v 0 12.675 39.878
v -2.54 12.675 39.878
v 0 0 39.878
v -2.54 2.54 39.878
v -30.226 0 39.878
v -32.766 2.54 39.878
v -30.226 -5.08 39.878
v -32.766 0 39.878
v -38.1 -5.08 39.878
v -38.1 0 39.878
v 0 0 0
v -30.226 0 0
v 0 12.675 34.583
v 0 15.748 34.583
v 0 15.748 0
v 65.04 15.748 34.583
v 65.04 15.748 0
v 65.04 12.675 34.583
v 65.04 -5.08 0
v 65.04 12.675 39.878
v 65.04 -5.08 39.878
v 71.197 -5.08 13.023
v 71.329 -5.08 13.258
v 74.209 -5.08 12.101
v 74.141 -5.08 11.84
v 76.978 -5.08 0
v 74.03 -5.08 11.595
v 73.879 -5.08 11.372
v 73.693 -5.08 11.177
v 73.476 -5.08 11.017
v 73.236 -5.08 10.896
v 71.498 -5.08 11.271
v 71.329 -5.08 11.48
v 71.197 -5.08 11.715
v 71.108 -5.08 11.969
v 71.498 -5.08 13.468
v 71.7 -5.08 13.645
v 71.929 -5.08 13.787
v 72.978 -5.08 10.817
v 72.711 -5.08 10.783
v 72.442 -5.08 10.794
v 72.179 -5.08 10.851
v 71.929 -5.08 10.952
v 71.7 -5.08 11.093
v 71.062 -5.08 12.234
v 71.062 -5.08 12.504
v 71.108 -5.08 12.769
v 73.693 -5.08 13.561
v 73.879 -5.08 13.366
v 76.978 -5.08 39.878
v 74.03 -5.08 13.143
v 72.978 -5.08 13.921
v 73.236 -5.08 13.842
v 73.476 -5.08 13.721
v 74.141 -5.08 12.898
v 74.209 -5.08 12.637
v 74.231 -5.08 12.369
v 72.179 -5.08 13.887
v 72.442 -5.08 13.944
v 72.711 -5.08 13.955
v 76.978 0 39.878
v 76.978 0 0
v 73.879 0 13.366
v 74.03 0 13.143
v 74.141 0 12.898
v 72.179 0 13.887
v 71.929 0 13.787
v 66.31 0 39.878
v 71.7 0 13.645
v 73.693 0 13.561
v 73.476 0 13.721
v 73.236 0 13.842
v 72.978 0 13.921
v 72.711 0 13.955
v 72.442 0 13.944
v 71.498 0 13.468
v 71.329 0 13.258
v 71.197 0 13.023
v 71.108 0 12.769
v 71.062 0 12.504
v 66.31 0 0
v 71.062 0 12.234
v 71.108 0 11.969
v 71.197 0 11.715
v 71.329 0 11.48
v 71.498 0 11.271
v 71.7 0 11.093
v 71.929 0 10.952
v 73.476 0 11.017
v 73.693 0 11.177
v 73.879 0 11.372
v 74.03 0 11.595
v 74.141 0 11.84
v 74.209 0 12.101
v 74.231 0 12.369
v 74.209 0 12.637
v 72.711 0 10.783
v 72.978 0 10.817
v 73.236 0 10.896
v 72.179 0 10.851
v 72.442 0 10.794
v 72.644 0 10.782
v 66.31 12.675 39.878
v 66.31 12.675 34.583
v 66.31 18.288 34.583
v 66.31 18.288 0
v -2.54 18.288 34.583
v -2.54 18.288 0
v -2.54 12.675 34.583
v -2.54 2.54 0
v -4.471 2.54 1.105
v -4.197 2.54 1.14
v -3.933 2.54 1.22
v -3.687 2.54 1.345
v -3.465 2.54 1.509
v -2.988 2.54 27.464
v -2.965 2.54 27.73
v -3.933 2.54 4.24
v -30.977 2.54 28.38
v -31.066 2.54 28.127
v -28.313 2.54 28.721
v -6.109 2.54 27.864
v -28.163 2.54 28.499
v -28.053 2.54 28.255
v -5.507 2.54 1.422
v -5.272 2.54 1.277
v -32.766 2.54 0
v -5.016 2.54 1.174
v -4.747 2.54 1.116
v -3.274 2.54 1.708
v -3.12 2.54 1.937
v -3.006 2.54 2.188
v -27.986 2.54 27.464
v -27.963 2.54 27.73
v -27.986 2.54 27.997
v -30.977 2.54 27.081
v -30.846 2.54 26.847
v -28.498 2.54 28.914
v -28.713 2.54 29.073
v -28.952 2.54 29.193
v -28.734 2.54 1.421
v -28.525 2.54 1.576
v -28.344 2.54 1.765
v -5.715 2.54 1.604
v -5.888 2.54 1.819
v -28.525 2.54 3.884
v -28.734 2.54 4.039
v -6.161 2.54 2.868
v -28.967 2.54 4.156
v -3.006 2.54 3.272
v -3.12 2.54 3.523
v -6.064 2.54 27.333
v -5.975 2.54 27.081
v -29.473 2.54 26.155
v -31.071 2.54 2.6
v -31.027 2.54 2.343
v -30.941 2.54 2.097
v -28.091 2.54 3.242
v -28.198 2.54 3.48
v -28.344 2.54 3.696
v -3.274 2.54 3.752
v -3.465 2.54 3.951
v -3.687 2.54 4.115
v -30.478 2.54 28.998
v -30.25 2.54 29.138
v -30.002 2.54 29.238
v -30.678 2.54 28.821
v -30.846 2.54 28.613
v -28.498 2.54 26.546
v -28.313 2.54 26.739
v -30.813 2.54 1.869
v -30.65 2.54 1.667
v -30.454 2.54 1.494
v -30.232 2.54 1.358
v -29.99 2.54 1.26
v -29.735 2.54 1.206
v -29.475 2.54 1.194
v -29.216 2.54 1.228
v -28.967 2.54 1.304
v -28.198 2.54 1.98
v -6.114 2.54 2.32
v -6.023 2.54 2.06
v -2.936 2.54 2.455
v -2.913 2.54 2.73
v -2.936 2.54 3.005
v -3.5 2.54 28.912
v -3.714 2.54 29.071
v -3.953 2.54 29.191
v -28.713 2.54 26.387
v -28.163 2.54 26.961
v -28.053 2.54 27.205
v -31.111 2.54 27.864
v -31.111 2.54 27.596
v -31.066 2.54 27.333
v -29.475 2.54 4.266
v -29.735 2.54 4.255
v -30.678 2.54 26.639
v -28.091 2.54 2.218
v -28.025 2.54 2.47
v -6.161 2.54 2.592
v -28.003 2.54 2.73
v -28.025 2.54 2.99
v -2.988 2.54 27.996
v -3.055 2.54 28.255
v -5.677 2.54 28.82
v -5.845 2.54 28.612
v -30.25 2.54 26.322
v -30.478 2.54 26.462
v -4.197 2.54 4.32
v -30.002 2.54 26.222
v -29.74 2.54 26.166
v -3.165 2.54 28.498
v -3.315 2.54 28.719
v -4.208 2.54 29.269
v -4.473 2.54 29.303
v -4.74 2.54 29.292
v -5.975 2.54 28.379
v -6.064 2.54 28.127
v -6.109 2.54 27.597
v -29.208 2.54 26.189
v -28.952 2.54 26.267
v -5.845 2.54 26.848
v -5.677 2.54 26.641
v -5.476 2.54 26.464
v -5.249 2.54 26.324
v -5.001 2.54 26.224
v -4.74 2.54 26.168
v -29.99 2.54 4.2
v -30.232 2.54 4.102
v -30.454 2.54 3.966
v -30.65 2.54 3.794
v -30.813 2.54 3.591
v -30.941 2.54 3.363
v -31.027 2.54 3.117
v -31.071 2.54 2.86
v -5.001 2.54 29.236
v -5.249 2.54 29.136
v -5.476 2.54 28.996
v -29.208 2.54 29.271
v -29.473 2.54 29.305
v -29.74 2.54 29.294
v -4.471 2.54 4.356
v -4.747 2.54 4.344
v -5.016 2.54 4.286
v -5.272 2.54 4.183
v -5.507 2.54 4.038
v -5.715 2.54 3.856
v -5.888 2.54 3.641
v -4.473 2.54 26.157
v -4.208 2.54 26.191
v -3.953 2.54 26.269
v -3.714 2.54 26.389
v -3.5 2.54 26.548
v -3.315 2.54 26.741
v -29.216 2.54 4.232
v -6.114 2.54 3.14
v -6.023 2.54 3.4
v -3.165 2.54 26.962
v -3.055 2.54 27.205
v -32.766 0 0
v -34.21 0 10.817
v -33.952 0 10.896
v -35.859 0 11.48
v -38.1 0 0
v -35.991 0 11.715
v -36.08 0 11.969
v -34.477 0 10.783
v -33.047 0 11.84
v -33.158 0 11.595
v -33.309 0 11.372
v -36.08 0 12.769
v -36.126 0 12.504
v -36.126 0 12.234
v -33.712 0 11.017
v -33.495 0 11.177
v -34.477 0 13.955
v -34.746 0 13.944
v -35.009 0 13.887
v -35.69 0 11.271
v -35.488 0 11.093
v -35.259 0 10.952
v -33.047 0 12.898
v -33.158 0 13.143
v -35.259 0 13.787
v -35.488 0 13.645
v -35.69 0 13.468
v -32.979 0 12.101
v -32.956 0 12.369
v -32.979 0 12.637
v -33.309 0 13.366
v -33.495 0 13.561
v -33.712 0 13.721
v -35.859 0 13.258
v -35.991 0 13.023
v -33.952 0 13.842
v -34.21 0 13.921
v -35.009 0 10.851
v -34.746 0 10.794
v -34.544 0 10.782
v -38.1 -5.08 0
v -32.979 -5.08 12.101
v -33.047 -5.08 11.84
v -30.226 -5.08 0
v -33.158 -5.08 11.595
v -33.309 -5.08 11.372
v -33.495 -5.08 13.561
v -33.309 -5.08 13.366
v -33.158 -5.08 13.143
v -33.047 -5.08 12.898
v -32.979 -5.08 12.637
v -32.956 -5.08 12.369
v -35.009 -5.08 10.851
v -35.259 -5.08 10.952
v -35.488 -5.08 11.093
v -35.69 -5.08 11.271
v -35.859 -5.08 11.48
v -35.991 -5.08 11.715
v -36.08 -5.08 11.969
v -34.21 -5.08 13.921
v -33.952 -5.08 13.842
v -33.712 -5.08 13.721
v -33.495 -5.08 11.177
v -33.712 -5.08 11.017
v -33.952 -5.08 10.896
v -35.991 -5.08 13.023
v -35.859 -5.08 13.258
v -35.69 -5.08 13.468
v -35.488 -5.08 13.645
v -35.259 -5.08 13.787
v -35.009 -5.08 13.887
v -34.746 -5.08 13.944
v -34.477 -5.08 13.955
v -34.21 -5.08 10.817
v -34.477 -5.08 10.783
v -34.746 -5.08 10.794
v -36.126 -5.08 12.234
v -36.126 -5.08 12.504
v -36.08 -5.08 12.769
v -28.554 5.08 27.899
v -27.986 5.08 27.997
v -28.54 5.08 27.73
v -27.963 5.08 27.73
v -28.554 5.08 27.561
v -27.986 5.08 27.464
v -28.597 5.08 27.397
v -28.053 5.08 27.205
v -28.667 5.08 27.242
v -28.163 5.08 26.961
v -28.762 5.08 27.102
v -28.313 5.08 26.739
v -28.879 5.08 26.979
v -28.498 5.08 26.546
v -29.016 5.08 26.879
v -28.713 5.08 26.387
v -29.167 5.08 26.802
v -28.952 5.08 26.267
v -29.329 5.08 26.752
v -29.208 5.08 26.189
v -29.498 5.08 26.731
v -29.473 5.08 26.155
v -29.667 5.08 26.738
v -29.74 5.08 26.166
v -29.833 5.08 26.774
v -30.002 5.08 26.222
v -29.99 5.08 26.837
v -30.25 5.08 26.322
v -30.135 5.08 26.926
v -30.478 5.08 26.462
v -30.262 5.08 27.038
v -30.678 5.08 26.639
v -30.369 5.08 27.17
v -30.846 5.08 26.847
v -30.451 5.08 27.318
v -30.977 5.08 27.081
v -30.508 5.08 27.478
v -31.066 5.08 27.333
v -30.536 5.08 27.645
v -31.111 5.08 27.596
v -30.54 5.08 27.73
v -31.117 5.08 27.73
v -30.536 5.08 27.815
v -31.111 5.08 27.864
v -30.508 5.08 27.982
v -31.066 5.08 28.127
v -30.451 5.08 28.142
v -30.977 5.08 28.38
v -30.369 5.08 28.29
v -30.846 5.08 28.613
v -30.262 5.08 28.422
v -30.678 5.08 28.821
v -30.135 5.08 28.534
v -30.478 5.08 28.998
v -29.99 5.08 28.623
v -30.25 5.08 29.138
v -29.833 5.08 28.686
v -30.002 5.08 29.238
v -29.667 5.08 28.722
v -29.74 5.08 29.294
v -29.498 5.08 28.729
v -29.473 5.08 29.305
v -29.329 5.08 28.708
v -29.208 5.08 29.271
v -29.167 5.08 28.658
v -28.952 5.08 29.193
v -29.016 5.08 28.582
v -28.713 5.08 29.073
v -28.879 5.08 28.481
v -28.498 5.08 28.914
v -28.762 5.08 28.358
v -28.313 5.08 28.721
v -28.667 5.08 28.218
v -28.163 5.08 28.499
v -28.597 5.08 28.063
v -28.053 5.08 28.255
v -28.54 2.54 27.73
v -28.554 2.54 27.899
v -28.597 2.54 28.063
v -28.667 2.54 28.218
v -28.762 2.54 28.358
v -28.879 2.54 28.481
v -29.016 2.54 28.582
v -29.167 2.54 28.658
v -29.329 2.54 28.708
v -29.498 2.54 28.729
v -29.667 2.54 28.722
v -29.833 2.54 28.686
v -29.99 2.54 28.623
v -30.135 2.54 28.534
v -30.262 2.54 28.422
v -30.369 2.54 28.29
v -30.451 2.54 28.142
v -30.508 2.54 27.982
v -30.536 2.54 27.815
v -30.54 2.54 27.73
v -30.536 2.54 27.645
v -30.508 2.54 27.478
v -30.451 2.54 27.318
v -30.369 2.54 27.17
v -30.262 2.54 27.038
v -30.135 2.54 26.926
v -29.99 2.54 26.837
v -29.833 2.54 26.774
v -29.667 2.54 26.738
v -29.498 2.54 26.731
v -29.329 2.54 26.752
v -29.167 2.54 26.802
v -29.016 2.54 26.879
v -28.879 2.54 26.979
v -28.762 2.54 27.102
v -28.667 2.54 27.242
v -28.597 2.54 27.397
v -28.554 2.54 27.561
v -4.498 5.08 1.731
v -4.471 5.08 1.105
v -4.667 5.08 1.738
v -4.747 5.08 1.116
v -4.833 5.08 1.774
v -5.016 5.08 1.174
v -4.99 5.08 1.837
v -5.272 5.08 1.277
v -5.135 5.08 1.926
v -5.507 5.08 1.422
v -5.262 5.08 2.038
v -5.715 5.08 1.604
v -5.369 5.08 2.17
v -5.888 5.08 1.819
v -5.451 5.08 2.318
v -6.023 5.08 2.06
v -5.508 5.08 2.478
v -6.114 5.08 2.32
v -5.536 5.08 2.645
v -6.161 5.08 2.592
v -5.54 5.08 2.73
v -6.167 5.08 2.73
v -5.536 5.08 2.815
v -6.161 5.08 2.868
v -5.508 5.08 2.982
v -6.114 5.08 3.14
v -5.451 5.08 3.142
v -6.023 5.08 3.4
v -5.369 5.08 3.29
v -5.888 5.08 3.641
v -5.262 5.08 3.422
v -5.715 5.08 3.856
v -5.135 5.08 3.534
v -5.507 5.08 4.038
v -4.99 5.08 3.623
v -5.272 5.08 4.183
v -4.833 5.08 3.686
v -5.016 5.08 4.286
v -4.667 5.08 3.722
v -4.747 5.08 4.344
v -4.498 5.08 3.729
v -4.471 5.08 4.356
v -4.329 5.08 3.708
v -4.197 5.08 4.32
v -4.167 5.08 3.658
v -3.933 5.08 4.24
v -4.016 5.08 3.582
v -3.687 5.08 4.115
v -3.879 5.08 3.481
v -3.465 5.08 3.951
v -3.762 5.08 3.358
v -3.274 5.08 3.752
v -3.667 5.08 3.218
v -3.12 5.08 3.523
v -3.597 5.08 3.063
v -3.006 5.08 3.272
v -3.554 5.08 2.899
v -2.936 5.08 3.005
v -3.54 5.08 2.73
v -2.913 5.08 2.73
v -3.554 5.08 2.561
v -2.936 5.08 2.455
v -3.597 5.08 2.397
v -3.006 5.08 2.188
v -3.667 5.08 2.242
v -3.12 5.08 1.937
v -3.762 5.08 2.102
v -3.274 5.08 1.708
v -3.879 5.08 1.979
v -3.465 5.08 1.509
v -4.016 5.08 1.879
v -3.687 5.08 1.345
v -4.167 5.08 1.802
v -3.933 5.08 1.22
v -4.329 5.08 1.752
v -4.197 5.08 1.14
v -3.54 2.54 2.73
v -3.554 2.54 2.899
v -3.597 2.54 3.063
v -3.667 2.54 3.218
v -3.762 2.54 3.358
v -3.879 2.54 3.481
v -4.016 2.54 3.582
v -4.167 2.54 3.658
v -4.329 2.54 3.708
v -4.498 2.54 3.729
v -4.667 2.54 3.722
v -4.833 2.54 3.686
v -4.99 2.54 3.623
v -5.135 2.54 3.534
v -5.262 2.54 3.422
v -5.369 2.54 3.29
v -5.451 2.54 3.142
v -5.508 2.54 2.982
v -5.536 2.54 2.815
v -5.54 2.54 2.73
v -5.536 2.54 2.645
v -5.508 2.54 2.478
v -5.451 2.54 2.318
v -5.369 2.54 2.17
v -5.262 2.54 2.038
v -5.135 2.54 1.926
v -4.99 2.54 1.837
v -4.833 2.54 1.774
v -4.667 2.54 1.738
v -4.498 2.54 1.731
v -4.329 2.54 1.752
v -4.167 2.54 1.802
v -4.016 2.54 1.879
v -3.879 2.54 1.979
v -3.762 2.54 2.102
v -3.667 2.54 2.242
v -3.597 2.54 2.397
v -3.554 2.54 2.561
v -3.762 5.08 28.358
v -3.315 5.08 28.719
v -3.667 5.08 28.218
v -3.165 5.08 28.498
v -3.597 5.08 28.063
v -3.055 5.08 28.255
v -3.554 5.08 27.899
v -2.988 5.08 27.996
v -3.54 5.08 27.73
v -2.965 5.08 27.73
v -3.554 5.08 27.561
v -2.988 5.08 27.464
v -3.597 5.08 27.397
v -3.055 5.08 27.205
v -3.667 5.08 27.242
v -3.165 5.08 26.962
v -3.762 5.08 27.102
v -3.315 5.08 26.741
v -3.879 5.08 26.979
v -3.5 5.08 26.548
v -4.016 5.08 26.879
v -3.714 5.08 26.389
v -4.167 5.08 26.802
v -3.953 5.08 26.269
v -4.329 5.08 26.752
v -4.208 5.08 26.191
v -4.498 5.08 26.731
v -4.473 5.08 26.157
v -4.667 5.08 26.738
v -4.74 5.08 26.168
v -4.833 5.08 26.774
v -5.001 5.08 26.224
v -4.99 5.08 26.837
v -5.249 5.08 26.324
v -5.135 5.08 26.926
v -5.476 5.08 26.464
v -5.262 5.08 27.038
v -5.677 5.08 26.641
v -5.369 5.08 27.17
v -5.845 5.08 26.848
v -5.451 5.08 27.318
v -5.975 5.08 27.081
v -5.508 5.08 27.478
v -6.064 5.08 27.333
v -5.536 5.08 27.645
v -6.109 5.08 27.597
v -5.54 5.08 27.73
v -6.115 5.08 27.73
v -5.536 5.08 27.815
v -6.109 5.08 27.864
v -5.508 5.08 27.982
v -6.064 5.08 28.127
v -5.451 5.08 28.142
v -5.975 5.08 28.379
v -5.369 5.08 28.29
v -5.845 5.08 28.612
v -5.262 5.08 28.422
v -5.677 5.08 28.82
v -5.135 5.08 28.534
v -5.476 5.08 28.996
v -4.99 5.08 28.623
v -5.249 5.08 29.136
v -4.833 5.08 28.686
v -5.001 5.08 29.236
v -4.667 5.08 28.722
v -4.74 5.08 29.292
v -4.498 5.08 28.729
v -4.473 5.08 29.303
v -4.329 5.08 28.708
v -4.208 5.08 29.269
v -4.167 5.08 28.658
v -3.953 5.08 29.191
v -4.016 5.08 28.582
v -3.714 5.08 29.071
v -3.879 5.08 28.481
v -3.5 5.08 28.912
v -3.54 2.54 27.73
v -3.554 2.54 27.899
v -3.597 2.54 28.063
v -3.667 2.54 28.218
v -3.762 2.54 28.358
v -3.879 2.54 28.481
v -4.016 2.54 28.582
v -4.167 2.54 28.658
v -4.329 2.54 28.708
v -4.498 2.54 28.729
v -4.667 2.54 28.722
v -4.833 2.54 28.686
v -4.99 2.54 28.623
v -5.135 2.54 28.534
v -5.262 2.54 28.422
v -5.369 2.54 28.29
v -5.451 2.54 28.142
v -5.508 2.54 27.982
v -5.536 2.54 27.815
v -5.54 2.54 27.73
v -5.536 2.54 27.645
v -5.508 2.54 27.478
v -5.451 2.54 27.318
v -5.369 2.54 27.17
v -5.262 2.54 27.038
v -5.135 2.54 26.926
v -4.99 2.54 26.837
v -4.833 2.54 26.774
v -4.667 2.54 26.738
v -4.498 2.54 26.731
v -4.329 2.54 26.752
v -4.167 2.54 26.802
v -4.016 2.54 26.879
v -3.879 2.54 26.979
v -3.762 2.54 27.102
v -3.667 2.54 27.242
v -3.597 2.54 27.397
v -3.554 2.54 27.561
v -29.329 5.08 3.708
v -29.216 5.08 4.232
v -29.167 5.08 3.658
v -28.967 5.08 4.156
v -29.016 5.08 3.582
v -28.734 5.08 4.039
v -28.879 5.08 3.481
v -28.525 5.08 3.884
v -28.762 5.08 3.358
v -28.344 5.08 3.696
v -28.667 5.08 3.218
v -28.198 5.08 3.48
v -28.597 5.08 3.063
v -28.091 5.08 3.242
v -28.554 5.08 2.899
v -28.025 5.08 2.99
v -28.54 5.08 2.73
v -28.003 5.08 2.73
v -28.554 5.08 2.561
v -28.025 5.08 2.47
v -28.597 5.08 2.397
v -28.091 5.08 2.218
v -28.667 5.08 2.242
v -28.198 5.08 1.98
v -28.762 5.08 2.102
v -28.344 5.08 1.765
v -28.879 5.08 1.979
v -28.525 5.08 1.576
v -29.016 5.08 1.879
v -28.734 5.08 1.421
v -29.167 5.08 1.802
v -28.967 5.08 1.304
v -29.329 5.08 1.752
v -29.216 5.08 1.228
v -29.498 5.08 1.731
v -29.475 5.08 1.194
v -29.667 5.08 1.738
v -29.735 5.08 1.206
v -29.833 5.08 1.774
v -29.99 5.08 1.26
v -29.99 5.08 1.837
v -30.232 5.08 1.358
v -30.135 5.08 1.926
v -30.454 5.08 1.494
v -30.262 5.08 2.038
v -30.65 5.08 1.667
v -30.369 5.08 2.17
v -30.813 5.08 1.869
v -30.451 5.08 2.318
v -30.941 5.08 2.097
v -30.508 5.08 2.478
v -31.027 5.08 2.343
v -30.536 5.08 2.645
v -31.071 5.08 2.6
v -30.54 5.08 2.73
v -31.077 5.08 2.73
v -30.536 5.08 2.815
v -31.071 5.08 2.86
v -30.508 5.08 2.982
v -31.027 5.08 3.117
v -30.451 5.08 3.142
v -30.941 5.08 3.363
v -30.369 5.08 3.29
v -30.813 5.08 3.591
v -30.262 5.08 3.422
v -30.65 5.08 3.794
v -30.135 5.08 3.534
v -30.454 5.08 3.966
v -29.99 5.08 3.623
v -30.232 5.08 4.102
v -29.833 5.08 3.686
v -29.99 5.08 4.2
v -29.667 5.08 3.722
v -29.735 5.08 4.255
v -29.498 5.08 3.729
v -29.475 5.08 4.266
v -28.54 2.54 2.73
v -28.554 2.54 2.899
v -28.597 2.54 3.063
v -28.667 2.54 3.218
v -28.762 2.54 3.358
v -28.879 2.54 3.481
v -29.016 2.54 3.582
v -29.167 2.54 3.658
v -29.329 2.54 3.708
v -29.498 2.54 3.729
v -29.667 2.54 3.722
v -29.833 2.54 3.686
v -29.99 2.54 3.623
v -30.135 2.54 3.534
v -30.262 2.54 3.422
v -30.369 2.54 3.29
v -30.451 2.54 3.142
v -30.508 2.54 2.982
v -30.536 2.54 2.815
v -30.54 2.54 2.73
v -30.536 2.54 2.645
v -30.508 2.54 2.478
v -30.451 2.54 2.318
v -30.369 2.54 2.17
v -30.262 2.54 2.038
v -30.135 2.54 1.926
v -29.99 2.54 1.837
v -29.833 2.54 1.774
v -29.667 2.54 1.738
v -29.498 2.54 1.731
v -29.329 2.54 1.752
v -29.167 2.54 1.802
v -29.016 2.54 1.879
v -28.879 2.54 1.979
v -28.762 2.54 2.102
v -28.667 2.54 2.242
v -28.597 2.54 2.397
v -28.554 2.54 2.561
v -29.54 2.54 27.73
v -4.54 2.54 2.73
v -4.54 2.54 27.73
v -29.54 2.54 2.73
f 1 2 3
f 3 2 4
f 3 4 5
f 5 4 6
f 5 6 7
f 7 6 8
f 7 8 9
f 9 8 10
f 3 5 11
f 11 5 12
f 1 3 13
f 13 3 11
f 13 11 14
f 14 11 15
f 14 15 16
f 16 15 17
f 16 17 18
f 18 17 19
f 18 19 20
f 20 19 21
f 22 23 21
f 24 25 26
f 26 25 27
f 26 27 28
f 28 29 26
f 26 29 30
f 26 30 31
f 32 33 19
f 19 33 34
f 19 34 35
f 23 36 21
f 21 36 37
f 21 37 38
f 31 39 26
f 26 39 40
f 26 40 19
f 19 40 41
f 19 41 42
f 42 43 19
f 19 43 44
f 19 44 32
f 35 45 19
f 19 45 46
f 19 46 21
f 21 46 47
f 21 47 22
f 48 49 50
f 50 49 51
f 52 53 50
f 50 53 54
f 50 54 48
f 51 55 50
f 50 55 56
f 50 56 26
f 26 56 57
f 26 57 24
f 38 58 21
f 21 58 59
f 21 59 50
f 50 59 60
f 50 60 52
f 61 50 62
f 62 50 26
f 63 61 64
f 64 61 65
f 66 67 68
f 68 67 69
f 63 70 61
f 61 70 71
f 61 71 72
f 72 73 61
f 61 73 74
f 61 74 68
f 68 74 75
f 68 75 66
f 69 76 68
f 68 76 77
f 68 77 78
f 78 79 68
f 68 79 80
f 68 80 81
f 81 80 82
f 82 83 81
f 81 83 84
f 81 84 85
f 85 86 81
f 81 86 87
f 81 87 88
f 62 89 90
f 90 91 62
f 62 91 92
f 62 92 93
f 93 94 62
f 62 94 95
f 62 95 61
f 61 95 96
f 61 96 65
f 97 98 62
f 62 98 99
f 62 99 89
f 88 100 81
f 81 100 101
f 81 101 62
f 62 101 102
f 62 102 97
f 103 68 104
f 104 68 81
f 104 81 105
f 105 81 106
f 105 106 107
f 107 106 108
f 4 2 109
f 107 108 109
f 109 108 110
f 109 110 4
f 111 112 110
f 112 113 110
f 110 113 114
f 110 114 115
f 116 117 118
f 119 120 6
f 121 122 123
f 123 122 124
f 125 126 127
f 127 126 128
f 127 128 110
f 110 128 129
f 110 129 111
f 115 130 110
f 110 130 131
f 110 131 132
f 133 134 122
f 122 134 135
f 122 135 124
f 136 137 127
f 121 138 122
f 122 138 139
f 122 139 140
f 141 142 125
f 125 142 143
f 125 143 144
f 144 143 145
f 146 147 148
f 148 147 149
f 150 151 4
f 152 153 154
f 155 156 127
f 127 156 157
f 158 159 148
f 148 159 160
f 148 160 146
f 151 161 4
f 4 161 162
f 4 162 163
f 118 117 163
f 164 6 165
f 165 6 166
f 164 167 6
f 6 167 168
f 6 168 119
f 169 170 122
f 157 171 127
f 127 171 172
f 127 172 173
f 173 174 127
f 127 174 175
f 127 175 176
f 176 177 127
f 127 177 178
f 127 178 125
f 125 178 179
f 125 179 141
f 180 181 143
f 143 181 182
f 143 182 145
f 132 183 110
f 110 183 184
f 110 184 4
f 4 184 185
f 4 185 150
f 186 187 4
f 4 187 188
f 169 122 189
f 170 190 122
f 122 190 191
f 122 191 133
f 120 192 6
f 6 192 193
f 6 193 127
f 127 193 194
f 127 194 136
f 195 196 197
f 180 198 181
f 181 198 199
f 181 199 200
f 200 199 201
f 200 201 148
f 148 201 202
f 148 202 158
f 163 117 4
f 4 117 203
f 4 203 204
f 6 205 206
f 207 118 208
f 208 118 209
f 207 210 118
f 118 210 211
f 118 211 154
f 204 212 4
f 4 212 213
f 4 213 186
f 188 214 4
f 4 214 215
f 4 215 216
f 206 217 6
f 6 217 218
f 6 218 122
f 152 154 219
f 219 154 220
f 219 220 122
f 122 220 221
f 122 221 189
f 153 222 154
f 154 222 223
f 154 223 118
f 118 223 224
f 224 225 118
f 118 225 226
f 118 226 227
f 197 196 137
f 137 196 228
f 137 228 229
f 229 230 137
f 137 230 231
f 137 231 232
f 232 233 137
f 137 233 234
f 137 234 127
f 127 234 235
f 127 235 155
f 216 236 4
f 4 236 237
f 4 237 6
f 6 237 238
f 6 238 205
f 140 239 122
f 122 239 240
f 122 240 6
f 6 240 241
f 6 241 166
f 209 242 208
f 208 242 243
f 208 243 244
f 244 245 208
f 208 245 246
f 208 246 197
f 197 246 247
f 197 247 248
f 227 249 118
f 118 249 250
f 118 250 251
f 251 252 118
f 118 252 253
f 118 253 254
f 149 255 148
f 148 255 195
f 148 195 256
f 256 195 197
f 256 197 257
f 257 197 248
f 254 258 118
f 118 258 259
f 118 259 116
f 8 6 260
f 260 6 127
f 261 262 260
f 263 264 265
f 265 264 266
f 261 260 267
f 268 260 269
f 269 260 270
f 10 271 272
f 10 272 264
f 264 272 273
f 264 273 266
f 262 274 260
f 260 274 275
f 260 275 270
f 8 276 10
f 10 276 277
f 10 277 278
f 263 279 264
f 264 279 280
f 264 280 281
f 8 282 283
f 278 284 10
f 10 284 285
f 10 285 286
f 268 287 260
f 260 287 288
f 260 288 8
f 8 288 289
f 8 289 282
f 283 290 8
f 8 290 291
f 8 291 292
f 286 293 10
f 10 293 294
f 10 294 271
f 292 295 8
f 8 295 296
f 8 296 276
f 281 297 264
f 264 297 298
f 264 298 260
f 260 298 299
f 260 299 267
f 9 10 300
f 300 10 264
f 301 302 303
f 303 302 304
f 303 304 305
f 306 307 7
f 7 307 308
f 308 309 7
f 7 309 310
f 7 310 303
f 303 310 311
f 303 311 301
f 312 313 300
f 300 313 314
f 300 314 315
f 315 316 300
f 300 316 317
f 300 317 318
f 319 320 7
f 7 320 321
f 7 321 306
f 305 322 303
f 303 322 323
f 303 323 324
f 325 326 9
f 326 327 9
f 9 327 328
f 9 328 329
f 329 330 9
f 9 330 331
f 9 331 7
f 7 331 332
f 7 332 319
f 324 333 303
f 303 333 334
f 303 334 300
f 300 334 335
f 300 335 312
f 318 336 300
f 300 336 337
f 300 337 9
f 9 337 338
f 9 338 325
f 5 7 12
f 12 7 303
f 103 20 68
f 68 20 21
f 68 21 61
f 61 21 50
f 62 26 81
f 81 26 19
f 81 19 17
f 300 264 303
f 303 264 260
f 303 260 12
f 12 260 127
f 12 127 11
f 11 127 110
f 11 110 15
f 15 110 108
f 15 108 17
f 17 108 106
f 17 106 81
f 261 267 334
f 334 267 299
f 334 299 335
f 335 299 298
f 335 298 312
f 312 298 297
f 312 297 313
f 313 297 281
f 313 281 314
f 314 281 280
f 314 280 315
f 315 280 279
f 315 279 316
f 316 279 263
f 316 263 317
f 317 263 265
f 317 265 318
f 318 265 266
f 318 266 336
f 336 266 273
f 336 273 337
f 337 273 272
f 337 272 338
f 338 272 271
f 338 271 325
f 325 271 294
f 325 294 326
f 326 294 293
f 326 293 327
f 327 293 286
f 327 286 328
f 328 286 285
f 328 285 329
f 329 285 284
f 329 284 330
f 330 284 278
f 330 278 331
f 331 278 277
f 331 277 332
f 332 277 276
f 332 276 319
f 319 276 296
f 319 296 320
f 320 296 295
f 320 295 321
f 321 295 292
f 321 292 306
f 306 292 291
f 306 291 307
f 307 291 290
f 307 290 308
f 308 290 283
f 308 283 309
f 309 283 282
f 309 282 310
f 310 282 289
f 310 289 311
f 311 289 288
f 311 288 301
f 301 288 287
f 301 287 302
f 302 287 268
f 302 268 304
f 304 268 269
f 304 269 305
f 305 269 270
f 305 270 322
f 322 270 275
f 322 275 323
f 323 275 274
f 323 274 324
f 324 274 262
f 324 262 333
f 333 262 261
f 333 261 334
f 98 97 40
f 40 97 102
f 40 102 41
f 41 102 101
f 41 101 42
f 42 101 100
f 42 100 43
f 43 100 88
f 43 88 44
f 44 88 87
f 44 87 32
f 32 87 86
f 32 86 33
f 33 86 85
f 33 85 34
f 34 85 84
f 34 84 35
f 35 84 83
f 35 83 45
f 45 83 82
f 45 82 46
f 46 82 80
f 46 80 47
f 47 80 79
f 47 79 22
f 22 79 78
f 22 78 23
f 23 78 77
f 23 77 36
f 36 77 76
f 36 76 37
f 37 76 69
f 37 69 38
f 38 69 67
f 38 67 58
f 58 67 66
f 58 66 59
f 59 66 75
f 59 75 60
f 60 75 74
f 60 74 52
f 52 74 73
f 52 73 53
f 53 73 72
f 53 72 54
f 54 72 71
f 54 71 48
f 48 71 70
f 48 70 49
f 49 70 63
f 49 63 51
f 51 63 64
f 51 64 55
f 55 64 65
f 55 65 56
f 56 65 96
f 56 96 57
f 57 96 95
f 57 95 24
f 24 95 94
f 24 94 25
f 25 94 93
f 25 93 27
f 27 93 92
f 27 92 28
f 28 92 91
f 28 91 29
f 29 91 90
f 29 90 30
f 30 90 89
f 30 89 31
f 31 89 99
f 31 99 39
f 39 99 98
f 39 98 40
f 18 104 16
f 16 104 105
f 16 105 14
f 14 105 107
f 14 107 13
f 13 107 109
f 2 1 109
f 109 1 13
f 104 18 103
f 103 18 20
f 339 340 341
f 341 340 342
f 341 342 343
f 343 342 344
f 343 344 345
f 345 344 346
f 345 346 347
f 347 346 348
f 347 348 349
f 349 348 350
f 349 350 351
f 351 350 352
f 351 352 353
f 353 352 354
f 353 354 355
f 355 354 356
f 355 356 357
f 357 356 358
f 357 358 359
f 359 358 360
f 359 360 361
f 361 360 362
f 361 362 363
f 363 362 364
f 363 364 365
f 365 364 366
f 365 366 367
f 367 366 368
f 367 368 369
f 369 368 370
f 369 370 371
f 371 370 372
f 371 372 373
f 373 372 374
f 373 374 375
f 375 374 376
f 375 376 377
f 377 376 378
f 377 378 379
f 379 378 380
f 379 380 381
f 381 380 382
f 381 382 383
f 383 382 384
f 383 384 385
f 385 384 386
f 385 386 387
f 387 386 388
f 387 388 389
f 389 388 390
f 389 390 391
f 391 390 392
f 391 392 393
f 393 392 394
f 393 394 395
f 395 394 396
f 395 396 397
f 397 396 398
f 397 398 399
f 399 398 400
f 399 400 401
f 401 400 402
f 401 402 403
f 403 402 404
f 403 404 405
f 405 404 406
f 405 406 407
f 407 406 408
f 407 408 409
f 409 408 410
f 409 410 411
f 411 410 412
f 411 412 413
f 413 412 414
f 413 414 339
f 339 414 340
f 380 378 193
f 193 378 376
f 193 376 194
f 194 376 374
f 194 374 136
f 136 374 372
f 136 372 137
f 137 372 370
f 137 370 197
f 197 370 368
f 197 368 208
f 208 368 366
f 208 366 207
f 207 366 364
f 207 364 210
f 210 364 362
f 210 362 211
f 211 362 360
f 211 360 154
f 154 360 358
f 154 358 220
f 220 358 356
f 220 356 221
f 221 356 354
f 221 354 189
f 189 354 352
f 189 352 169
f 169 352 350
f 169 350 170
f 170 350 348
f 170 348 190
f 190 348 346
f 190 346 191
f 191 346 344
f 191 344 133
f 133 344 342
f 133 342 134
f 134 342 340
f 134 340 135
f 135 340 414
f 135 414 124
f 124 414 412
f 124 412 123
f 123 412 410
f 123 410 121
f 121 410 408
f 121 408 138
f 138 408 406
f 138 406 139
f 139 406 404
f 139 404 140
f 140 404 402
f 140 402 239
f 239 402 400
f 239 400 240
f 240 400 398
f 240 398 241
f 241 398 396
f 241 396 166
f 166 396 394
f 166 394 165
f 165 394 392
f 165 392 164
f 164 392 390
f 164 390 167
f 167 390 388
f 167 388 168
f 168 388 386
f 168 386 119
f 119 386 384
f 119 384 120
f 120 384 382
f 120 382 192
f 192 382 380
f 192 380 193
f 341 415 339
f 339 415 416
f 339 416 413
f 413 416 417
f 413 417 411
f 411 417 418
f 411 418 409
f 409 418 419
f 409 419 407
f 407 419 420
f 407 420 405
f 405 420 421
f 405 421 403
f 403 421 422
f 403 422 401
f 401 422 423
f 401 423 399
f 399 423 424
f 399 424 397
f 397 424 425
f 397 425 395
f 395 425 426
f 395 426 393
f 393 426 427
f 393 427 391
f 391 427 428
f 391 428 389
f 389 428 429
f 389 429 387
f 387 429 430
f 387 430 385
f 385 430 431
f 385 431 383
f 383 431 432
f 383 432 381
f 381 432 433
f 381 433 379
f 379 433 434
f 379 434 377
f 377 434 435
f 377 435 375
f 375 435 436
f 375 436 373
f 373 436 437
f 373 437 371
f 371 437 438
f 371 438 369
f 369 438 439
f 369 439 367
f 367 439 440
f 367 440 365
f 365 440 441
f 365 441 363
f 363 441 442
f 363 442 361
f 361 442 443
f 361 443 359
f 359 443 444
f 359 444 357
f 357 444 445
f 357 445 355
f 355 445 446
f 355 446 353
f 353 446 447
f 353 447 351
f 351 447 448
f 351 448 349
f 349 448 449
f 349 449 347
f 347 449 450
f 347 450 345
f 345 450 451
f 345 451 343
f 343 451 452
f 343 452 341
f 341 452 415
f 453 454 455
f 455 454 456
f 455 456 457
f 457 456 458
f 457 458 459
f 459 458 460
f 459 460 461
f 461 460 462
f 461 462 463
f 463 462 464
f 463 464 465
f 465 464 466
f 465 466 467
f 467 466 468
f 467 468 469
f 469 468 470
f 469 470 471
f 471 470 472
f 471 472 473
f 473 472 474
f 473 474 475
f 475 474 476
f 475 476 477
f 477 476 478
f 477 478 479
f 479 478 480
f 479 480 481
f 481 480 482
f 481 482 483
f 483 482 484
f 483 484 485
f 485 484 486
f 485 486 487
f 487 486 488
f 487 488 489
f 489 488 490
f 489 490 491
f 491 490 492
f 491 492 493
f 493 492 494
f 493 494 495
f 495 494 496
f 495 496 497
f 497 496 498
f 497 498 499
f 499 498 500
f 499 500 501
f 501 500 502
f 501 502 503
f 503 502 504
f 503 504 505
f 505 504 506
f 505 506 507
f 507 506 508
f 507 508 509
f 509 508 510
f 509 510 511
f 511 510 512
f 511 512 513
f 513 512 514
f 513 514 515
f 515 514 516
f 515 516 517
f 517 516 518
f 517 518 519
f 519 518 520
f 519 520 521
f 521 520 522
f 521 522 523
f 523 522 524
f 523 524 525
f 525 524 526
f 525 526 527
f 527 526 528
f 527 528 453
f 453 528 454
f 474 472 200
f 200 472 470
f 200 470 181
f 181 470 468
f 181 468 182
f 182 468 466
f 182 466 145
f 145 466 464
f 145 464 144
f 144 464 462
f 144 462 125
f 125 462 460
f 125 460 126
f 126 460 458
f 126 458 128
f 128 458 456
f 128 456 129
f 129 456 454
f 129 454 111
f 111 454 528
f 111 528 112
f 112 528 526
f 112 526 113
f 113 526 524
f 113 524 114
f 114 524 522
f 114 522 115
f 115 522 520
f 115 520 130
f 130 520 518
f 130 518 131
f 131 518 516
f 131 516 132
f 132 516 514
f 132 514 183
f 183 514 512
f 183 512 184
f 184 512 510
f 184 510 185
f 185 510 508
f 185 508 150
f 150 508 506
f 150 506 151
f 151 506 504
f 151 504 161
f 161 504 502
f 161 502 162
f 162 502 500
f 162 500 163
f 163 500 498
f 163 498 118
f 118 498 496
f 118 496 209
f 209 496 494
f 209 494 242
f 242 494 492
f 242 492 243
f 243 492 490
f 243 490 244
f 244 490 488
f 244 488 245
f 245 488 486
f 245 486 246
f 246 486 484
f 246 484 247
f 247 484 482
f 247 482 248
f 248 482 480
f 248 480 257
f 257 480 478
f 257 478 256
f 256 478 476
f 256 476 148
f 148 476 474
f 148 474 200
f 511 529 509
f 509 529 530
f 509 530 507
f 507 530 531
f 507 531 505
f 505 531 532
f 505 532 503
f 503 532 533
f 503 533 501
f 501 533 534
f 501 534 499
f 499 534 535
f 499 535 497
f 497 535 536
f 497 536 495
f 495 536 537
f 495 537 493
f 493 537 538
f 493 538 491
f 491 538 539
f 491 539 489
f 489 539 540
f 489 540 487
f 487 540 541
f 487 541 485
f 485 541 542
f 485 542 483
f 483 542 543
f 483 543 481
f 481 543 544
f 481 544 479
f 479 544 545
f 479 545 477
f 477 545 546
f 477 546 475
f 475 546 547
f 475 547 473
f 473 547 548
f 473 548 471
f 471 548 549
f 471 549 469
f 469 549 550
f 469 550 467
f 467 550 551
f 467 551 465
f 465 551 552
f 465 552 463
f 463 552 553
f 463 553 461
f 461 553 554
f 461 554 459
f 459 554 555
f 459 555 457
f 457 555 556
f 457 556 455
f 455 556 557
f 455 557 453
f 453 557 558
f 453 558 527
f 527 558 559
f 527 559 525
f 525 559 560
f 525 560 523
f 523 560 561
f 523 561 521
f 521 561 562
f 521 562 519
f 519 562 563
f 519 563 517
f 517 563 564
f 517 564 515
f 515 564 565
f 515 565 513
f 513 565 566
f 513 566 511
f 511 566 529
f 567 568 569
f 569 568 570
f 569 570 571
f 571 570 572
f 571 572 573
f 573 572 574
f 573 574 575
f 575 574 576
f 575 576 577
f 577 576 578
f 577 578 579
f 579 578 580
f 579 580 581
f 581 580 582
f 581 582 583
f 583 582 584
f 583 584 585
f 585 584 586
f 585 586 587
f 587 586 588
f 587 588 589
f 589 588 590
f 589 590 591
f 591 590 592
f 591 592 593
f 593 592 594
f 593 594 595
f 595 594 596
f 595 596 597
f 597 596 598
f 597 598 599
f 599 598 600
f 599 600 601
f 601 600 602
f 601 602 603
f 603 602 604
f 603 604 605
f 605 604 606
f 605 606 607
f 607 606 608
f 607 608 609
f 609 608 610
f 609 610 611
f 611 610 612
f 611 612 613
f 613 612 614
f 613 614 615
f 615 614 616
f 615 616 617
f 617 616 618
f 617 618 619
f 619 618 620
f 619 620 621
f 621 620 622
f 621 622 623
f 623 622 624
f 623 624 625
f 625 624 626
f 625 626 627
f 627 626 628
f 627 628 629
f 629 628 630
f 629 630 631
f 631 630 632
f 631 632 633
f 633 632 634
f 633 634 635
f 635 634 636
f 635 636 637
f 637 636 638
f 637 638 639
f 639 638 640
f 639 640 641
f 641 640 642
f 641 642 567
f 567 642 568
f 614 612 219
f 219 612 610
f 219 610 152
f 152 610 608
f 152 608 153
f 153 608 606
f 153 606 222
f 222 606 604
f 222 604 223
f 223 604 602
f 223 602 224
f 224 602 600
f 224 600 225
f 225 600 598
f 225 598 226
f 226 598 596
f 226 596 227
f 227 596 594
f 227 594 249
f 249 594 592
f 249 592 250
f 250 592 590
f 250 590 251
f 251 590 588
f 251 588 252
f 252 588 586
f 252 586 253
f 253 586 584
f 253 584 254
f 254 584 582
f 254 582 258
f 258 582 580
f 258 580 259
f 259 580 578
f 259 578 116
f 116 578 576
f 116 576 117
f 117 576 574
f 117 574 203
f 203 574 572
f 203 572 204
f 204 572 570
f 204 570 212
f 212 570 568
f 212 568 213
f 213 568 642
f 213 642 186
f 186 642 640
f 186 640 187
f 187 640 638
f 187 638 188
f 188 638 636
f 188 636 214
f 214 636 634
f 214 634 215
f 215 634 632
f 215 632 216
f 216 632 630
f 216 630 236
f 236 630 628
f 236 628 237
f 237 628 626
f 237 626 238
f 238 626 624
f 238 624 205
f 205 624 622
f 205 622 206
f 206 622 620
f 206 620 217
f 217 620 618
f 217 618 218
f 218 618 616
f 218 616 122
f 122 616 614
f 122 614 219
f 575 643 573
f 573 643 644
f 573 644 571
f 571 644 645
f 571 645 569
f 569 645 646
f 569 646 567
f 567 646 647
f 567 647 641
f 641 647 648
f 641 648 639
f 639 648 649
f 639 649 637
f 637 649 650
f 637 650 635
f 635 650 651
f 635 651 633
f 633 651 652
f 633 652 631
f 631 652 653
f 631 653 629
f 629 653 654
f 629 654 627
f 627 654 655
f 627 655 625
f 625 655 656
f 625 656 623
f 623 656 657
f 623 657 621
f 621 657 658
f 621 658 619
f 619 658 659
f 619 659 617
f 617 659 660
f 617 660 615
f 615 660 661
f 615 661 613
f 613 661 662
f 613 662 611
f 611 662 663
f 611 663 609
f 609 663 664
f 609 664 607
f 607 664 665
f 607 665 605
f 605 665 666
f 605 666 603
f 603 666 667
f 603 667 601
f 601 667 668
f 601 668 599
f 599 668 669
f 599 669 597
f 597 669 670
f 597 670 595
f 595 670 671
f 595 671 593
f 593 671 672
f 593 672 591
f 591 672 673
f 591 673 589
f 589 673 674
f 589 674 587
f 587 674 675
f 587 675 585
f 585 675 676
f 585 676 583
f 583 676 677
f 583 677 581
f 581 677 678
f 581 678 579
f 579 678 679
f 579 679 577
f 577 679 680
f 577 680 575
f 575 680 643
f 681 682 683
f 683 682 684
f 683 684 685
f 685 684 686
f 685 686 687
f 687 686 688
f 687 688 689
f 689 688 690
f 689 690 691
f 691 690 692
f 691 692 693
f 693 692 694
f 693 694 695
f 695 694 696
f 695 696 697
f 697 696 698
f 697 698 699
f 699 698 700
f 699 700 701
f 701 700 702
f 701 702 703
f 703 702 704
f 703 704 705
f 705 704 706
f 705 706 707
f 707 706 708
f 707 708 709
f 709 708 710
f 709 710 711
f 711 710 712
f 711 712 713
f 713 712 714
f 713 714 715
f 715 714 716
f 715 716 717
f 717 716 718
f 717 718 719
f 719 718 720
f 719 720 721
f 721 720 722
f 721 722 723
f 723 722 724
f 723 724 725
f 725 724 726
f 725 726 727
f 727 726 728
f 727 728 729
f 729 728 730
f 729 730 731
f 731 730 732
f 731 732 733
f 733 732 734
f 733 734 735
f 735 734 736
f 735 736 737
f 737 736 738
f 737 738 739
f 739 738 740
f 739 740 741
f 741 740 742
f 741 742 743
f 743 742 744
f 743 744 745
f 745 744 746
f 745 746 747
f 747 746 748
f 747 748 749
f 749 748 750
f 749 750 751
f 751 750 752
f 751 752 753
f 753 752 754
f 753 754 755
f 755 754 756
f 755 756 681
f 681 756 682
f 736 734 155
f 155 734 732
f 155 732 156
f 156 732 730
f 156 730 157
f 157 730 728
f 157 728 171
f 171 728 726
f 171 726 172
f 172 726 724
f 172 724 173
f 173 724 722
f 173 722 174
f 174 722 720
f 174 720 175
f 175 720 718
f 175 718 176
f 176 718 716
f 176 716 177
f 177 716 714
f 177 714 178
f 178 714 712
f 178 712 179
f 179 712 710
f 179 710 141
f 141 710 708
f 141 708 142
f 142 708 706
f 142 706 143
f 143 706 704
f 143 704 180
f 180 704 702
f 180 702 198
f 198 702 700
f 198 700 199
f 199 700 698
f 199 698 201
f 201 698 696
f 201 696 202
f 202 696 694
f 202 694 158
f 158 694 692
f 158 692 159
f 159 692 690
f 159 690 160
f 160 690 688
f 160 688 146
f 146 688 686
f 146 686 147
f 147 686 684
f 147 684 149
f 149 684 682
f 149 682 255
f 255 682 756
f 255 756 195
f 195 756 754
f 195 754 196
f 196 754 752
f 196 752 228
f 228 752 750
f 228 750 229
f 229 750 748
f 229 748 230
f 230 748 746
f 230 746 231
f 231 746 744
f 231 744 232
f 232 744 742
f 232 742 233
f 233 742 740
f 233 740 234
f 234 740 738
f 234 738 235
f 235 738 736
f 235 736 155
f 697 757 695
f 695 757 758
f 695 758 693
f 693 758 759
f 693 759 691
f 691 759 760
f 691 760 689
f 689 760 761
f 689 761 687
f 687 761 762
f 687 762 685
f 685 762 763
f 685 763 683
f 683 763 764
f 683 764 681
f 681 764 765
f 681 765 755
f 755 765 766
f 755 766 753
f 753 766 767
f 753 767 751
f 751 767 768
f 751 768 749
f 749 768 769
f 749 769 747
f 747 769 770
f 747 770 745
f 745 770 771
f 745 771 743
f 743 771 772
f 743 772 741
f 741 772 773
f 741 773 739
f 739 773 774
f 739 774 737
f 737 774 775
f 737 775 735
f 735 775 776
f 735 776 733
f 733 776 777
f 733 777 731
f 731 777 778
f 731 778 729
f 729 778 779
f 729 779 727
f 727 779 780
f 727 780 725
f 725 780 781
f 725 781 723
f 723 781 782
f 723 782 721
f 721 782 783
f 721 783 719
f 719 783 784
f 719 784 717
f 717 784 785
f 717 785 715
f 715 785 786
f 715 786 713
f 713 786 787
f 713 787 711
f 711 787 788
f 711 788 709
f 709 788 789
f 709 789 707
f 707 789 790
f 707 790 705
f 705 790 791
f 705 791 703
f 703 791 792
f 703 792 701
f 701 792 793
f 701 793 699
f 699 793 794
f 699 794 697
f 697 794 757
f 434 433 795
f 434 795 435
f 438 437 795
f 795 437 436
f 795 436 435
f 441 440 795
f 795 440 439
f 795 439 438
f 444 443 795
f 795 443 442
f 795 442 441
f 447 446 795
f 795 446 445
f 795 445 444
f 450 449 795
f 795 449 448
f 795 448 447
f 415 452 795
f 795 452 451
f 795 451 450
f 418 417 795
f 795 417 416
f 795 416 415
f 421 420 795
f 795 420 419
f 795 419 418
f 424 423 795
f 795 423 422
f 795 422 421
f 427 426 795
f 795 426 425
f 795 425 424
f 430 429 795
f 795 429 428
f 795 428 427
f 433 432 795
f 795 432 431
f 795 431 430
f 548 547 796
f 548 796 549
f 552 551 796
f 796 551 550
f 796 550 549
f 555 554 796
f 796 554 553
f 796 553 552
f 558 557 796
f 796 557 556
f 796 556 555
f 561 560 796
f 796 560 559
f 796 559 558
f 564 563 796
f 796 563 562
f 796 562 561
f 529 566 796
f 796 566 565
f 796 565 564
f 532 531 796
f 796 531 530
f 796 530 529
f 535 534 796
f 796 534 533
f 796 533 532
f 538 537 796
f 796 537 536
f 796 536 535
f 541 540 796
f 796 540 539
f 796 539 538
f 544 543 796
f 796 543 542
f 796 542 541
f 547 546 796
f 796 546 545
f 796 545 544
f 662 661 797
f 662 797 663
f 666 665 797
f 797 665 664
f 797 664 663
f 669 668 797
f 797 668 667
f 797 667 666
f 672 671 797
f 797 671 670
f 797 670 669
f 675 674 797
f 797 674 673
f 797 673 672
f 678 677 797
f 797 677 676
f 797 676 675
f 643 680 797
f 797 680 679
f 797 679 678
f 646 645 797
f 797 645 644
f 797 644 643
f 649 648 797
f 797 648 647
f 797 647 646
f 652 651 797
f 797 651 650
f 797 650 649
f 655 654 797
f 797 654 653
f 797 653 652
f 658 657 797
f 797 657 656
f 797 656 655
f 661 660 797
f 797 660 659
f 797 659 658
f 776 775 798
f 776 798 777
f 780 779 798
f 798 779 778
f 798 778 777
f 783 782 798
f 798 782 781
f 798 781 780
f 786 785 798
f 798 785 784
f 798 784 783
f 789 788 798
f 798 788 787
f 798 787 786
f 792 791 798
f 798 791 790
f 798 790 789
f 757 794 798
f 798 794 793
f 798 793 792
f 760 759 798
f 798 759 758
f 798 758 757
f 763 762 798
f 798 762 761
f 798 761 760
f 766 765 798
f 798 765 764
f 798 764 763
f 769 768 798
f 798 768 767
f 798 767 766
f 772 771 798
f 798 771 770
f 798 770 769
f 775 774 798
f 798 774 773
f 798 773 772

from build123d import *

# Parameters (mm, degrees)
BOSS_EXTRUDE1_DEPTH = 39.878
SKETCH3_R           = 1.5875
CUT_EXTRUDE1_DEPTH  = 90.788257027
SKETCH5_W           = 5.295414823
SKETCH5_H           = 5.612914704
CUT_EXTRUDE2_DEPTH  = 124.157023236
SKETCH6_R           = 1.576757794
SKETCH6_R_2         = 1
SKETCH6_R_3         = 1.536946723
SKETCH6_R_4         = 1.574598992
SKETCH6_R_5         = 1.626931784
BOSS_EXTRUDE3_DEPTH = 2.54


with BuildPart() as part:
    # Sketch2 → Boss-Extrude1 (new body)
    with BuildSketch(Plane.XY):
        Polygon((-30.226, 0), (-30.226, -5.08), (-38.1, -5.08), (-38.1, 0), (-32.766, 0), (-32.766, 2.54), (-2.54, 2.54), (-2.54, 18.288), (66.310002, 18.288), (66.310002, 0), (76.978002, 0), (76.978002, -5.08), (65.040002, -5.08), (65.040002, 15.748), (0, 15.748), (0, 0), align=None)
    extrude(amount=BOSS_EXTRUDE1_DEPTH)

    # Sketch3 → Cut-Extrude1 (cut, through all)
    with BuildSketch(Plane.XZ.offset(5.08)):
        with Locations((-34.544, 12.369063527)):
            Circle(SKETCH3_R)
        with Locations((72.644, 12.369063527)):
            Circle(SKETCH3_R)
    extrude(amount=-CUT_EXTRUDE1_DEPTH, mode=Mode.SUBTRACT)

    # Sketch5 → Cut-Extrude2 (cut, through all)
    with BuildSketch(Plane(origin=(76.978002, 0, 0), x_dir=(0, 0, -1), z_dir=(1, 0, 0))):
        with Locations((-37.230292589, 15.481542648)):
            Rectangle(SKETCH5_W, SKETCH5_H)
    extrude(amount=-CUT_EXTRUDE2_DEPTH, mode=Mode.SUBTRACT)

    # Sketch6 → Boss-Extrude3 (add)
    # profile 1 of 4: a face of its own
    with BuildSketch(Plane(origin=(0, 2.54, 0), x_dir=(1, 0, 0), z_dir=(0, 1, 0))):
        with Locations((-29.54, -27.73004556)):
            Circle(SKETCH6_R)
        with Locations(Location((-29.54, -27.73004556, 0), (0, 0, 180))):
            Circle(SKETCH6_R_2, mode=Mode.SUBTRACT)
    # profile 2 of 4: a face of its own
    with BuildSketch(Plane(origin=(0, 2.54, 0), x_dir=(1, 0, 0), z_dir=(0, 1, 0))):
        with Locations((-29.54, -2.73004556)):
            Circle(SKETCH6_R_3)
        with Locations(Location((-29.54, -2.73004556, 0), (0, 0, 180))):
            Circle(SKETCH6_R_2, mode=Mode.SUBTRACT)
    # profile 3 of 4: a face of its own
    with BuildSketch(Plane(origin=(0, 2.54, 0), x_dir=(1, 0, 0), z_dir=(0, 1, 0))):
        with Locations((-4.54, -27.73004556)):
            Circle(SKETCH6_R_4)
        with Locations(Location((-4.54, -27.73004556, 0), (0, 0, 180))):
            Circle(SKETCH6_R_2, mode=Mode.SUBTRACT)
    # profile 4 of 4: a face of its own
    with BuildSketch(Plane(origin=(0, 2.54, 0), x_dir=(1, 0, 0), z_dir=(0, 1, 0))):
        with Locations((-4.54, -2.73004556)):
            Circle(SKETCH6_R_5)
        with Locations(Location((-4.54, -2.73004556, 0), (0, 0, 180))):
            Circle(SKETCH6_R_2, mode=Mode.SUBTRACT)
    extrude(amount=BOSS_EXTRUDE3_DEPTH)


solid = part.part
